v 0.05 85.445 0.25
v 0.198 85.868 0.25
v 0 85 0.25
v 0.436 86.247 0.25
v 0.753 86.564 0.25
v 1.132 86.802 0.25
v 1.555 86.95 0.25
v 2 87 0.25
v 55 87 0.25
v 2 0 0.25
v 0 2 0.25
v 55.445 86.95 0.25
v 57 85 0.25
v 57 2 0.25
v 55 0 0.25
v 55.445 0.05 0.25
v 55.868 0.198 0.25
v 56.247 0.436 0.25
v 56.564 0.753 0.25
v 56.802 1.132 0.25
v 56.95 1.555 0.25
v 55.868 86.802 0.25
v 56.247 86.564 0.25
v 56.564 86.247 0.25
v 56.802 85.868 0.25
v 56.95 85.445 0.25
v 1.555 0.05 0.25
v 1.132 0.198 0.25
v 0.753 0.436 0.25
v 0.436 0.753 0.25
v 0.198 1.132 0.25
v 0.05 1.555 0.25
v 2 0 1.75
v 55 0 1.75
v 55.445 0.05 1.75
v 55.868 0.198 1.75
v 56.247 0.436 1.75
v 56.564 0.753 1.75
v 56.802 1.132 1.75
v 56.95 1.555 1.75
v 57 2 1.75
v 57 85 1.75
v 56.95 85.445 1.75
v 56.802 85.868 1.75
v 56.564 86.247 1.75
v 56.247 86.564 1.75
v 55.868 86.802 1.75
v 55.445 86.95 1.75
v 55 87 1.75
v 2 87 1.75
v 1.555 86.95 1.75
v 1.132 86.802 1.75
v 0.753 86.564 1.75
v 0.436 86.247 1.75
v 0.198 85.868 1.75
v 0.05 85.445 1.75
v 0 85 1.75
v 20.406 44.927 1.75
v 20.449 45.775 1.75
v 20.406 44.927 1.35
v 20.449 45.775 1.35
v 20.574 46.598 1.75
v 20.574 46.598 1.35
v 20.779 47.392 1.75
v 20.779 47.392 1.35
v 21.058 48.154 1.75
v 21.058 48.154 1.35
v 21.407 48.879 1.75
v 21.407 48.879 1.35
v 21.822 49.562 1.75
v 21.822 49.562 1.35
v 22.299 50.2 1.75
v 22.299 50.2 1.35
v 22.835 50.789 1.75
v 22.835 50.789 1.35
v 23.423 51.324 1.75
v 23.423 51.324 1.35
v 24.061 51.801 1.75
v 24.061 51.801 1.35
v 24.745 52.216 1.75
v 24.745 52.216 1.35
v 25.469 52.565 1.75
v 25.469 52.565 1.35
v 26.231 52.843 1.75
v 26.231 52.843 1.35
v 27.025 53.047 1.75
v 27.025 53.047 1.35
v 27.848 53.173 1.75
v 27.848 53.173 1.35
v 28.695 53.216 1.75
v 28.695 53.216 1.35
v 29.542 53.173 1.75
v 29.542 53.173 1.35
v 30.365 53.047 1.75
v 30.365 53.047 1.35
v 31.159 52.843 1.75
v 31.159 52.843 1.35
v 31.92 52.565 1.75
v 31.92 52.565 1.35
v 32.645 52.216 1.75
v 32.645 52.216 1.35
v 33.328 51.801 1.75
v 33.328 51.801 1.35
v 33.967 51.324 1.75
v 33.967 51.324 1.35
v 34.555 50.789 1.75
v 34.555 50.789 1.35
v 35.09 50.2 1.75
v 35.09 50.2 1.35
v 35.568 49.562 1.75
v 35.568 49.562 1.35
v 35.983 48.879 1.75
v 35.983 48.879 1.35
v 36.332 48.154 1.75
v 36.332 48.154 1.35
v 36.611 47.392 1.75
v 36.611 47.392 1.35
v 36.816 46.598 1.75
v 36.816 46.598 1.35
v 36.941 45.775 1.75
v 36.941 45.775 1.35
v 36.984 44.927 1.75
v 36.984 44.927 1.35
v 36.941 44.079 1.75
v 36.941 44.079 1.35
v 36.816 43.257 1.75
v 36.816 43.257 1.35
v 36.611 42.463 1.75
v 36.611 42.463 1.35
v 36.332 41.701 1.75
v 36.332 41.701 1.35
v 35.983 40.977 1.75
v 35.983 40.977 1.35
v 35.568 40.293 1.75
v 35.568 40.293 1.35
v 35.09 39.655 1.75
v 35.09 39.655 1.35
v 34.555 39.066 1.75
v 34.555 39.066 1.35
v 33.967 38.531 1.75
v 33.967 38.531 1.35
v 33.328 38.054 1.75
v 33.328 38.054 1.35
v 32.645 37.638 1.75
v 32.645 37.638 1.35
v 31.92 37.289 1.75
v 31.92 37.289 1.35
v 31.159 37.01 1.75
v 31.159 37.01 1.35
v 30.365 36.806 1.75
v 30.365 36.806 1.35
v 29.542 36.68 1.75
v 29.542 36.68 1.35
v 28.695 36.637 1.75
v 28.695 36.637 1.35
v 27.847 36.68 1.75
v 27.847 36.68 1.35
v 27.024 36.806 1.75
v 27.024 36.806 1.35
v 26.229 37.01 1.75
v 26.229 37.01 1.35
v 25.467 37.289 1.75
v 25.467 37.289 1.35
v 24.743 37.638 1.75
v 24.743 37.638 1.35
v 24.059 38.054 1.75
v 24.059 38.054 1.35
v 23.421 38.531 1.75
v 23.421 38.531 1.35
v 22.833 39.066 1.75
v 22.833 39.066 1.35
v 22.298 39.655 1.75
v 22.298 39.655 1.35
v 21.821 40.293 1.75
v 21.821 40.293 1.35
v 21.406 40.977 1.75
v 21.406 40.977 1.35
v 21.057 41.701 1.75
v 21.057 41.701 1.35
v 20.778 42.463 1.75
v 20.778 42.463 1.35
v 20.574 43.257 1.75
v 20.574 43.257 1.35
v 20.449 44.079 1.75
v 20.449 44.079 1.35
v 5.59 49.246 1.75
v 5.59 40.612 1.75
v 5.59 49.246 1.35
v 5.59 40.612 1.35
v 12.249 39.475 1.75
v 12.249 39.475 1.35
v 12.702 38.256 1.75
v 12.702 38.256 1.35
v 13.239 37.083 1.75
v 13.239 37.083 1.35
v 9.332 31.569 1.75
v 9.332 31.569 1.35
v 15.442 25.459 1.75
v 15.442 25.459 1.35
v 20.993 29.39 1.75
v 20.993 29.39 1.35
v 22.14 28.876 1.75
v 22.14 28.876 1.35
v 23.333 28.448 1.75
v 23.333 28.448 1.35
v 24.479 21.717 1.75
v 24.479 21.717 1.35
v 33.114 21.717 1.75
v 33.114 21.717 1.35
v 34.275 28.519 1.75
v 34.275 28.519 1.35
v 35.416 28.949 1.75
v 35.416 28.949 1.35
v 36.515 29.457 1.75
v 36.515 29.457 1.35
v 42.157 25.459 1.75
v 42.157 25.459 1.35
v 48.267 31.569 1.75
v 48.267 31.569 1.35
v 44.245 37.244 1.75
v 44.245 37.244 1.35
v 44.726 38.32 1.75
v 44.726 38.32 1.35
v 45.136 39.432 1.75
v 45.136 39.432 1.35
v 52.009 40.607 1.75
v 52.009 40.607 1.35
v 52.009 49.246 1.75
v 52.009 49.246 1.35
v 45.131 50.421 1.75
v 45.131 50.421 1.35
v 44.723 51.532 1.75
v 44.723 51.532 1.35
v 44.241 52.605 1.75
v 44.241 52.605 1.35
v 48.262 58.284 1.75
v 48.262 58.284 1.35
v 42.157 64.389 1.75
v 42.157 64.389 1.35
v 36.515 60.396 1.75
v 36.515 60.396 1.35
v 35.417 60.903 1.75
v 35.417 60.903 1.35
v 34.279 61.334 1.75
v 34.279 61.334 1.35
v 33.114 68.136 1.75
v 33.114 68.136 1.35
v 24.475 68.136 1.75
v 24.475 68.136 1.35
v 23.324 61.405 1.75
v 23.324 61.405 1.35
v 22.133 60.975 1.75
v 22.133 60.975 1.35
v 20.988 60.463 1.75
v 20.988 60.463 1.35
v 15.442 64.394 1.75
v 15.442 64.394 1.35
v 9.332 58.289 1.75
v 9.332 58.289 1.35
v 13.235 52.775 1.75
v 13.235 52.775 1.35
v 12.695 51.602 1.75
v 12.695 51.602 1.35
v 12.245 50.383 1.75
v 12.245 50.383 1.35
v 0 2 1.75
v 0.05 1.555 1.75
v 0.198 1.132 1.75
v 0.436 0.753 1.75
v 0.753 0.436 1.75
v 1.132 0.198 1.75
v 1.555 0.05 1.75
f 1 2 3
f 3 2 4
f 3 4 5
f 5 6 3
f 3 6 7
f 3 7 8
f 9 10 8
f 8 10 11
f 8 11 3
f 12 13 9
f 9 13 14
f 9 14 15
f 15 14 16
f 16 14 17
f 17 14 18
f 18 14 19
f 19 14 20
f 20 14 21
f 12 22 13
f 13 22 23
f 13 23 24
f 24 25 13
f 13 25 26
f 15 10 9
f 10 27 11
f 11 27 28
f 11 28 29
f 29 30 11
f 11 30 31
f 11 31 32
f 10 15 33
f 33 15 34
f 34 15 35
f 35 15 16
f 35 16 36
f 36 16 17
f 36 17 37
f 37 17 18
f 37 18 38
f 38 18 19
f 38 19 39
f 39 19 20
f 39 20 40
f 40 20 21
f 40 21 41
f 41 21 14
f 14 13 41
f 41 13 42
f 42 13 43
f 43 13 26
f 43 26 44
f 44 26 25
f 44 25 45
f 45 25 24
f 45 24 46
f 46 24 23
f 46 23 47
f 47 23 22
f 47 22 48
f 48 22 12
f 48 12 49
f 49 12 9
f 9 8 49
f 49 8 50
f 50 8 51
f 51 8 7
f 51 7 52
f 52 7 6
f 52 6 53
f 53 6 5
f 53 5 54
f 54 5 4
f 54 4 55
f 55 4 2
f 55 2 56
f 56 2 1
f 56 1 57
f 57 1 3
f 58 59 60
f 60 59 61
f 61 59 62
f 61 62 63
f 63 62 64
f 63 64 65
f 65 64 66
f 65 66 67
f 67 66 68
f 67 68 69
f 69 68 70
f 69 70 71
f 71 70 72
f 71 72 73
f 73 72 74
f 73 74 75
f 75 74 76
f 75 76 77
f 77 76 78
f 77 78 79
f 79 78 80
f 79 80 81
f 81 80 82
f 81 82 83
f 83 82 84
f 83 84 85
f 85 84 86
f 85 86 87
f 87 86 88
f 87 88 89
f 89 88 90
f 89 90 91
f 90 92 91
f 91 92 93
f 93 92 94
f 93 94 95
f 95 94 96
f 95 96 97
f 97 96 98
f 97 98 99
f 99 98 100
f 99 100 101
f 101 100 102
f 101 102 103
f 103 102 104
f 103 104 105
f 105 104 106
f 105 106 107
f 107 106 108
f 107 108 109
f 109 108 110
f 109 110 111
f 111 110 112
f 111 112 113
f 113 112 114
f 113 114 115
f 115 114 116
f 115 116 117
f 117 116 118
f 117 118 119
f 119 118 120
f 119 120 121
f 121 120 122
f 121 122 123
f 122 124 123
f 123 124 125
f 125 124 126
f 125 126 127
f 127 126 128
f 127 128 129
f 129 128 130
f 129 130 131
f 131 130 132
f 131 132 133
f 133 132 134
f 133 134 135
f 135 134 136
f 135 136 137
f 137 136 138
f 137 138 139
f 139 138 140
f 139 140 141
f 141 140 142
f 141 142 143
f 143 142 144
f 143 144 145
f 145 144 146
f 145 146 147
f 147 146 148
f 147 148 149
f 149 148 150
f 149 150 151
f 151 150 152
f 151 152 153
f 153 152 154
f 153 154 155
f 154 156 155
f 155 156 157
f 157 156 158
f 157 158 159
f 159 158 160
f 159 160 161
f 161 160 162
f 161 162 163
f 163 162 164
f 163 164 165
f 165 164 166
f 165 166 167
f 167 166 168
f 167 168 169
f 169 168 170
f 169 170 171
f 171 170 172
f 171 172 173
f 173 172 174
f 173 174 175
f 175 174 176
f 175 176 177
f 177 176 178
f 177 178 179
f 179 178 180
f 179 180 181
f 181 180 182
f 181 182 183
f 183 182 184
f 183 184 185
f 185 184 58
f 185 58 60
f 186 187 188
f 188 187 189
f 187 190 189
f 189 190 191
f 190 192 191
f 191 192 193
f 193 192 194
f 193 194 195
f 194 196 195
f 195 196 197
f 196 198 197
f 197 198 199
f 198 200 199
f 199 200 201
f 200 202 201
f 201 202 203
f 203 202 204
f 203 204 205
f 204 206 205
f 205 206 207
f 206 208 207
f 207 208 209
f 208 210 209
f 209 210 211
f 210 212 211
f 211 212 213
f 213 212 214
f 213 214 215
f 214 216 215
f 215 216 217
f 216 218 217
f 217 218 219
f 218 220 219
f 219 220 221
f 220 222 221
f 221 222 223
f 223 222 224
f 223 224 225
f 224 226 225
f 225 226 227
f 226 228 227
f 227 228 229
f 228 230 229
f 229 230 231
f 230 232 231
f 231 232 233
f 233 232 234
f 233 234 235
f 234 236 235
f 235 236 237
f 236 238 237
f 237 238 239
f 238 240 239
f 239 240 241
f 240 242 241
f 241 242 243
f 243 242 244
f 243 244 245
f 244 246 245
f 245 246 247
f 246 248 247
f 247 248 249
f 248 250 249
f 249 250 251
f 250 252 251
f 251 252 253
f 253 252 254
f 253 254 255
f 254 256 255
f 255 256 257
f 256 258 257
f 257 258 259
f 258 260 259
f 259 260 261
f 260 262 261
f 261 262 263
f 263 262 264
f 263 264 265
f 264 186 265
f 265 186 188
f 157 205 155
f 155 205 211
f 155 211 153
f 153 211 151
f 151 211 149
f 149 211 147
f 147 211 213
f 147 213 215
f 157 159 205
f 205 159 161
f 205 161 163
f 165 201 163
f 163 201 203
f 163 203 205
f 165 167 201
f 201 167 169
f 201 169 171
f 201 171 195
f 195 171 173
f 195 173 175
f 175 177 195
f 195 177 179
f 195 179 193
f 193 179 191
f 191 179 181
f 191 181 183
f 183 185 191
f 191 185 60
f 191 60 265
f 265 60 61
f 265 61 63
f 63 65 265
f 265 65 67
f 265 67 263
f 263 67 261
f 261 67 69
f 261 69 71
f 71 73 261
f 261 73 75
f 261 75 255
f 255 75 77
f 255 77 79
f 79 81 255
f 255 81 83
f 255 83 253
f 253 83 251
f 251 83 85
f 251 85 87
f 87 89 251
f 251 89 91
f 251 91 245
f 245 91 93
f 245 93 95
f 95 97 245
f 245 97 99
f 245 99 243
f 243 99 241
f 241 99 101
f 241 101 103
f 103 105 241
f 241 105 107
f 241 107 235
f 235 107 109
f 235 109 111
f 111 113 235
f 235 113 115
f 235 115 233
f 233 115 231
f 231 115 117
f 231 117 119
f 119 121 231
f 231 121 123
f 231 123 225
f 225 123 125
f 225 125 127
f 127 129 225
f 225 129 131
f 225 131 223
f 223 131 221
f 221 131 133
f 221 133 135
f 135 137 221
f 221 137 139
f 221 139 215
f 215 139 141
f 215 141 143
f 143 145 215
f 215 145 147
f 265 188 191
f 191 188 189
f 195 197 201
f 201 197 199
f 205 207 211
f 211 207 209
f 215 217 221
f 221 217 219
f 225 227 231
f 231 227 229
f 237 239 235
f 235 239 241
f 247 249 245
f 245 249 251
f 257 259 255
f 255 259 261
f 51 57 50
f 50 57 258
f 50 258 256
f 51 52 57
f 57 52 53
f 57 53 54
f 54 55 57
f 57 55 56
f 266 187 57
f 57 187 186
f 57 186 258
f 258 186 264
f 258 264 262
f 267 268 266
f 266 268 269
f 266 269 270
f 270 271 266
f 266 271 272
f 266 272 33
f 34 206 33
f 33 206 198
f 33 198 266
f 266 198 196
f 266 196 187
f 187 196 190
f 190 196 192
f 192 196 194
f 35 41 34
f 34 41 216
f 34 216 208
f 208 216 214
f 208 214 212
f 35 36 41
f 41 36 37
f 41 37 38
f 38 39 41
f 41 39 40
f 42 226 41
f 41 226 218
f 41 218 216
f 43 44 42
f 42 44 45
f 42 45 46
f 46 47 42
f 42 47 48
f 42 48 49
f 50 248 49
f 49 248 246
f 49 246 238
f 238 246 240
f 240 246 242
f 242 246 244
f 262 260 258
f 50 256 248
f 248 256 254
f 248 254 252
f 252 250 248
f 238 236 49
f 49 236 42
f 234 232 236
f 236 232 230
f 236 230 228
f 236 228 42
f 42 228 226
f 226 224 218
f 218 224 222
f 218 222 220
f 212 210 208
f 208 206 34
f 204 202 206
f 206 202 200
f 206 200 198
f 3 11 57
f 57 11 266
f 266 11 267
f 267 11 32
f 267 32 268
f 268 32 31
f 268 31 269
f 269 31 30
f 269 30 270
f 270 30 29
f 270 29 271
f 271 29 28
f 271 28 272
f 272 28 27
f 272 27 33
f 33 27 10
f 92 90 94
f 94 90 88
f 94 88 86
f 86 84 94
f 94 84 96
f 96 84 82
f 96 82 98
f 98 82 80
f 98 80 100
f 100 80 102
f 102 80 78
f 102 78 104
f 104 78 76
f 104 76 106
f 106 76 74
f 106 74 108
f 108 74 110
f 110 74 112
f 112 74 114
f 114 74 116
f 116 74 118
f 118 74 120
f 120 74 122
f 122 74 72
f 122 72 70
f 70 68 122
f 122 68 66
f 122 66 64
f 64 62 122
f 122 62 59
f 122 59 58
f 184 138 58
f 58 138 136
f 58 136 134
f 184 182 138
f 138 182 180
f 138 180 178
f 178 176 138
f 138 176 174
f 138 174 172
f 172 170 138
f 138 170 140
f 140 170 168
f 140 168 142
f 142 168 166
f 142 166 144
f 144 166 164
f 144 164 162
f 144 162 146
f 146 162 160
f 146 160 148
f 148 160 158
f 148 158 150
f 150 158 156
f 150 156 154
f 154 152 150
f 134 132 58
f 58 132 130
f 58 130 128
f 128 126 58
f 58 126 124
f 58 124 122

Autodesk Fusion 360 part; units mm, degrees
sketch "Skizze1" plane through (0, 0, 0) normal (0, 0, 1) x (1, 0, 0)
  line L0 (0, 0) -> (57, 0)
  line L1 (57, 0) -> (57, 87)
  line L2 (57, 87) -> (0, 87)
  line L3 (0, 87) -> (0, 0)
  dimension "d1" = 57
  dimension "d2" = 87
extrude "Extrusion1" add sketch "Skizze1" along normal blind 1.75
fillet "Abrundung1" radius 2 4 edges at (0, 0, 0.875) (57, 0, 0.875) (57, 87, 0.875) (0, 87, 0.875)
sketch "Skizze2" plane through (0, 0, 1.75) normal (0, 0, 1) x (-1, 0, 0)
  arc A0 (-2, -87) -> (0, -85) centre (-2, -85) ccw
  line L0 (0, -85) -> (0, -2)
  arc A1 (0, -2) -> (-2, 0) centre (-2, -2) ccw
  line L1 (-2, 0) -> (-55, 0)
  arc A2 (-55, 0) -> (-57, -2) centre (-55, -2) ccw
  line L2 (-57, -2) -> (-57, -85)
  arc A3 (-57, -85) -> (-55, -87) centre (-55, -85) ccw
  line L3 (-55, -87) -> (-2, -87)
  line L4 (-5.5896, -49.2464) -> (-5.5896, -40.6115)
  line L5 (-5.5896, -40.6115) -> (-12.2493, -39.4747)
  spline S0 degree 3 poles (-12.2493, -39.4747) (-12.5241, -38.6458) (-12.8509, -37.8501) (-13.2393, -37.0827) knots 0 0 0 0 1 1 1 1
  line L6 (-13.2393, -37.0827) -> (-9.3316, -31.5693)
  line L7 (-9.3316, -31.5693) -> (-15.4418, -25.459)
  line L8 (-15.4418, -25.459) -> (-20.9932, -29.3904)
  spline S1 degree 3 poles (-20.9932, -29.3904) (-21.7416, -29.0162) (-22.5231, -28.7083) (-23.3331, -28.4478) knots 0 0 0 0 1 1 1 1
  line L9 (-23.3331, -28.4478) -> (-24.4794, -21.7171)
  line L10 (-24.4794, -21.7171) -> (-33.1143, -21.7171)
  line L11 (-33.1143, -21.7171) -> (-34.2747, -28.5189)
  spline S2 degree 3 poles (-34.2747, -28.5189) (-35.0515, -28.7794) (-35.7952, -29.092) (-36.5152, -29.4567) knots 0 0 0 0 1 1 1 1
  line L12 (-36.5152, -29.4567) -> (-42.1565, -25.459)
  line L13 (-42.1565, -25.459) -> (-48.2668, -31.5693)
  line L14 (-48.2668, -31.5693) -> (-44.2454, -37.2438)
  spline S3 degree 3 poles (-44.2454, -37.2438) (-44.5959, -37.9495) (-44.8801, -38.679) (-45.1359, -39.4321) knots 0 0 0 0 1 1 1 1
  line L15 (-45.1359, -39.4321) -> (-52.0087, -40.6068)
  line L16 (-52.0087, -40.6068) -> (-52.0087, -49.2464)
  line L17 (-52.0087, -49.2464) -> (-45.1311, -50.4211)
  spline S4 degree 3 poles (-45.1311, -50.4211) (-44.8801, -51.179) (-44.5911, -51.8989) (-44.2406, -52.6047) knots 0 0 0 0 1 1 1 1
  line L18 (-44.2406, -52.6047) -> (-48.262, -58.2839)
  line L19 (-48.262, -58.2839) -> (-42.1565, -64.3895)
  line L20 (-42.1565, -64.3895) -> (-36.5152, -60.3965)
  spline S5 degree 3 poles (-36.5152, -60.3965) (-35.7952, -60.7612) (-35.0515, -61.0691) (-34.2795, -61.3343) knots 0 0 0 0 1 1 1 1
  line L21 (-34.2795, -61.3343) -> (-33.1143, -68.1362)
  line L22 (-33.1143, -68.1362) -> (-24.4746, -68.1362)
  line L23 (-24.4746, -68.1362) -> (-23.3236, -61.4054)
  spline S6 degree 3 poles (-23.3236, -61.4054) (-22.5137, -61.1401) (-21.7368, -60.837) (-20.9885, -60.4628) knots 0 0 0 0 1 1 1 1
  line L24 (-20.9885, -60.4628) -> (-15.4418, -64.3942)
  line L25 (-15.4418, -64.3942) -> (-9.3316, -58.2887)
  line L26 (-9.3316, -58.2887) -> (-13.2346, -52.7752)
  spline S7 degree 3 poles (-13.2346, -52.7752) (-12.8414, -52.0079) (-12.5193, -51.2121) (-12.2446, -50.3832) knots 0 0 0 0 1 1 1 1
  line L27 (-12.2446, -50.3832) -> (-5.5896, -49.2464)
  spline S8 degree 3 poles (-28.695, -53.2157) (-33.2706, -53.2157) (-36.9841, -49.5069) (-36.9841, -44.9266) knots 0 0 0 0 1 1 1 1
  spline S9 degree 3 poles (-36.9841, -44.9266) (-36.9841, -40.351) (-33.2706, -36.6375) (-28.695, -36.6375) knots 0 0 0 0 1 1 1 1
  spline S10 degree 3 poles (-28.695, -36.6375) (-24.1146, -36.6375) (-20.4058, -40.351) (-20.4058, -44.9266) knots 0 0 0 0 1 1 1 1
  spline S11 degree 3 poles (-20.4058, -44.9266) (-20.4058, -49.5069) (-24.1194, -53.2157) (-28.695, -53.2157) knots 0 0 0 0 1 1 1 1
extrude "Extrusion2" cut sketch "Skizze2" against normal blind 0.4 contours L4 L5 S0 L6 L7 L8 S1 L9 L10 L11 S2 L12 L13 L14 S3 L15 L16 L17 S4 L18 L19 L20 S5 L21 L22 L23 S6 L24 L25 L26 S7 L27
extrude "Extrusion3" cut 1 faces at (19, 57.3333, 0) along direction (0, 0, 1) blind 0.2
extrude "Extrusion4" cut 1 faces at (19, 57.3333, 0.2) along direction (0, 0, 1) blind 0.05
